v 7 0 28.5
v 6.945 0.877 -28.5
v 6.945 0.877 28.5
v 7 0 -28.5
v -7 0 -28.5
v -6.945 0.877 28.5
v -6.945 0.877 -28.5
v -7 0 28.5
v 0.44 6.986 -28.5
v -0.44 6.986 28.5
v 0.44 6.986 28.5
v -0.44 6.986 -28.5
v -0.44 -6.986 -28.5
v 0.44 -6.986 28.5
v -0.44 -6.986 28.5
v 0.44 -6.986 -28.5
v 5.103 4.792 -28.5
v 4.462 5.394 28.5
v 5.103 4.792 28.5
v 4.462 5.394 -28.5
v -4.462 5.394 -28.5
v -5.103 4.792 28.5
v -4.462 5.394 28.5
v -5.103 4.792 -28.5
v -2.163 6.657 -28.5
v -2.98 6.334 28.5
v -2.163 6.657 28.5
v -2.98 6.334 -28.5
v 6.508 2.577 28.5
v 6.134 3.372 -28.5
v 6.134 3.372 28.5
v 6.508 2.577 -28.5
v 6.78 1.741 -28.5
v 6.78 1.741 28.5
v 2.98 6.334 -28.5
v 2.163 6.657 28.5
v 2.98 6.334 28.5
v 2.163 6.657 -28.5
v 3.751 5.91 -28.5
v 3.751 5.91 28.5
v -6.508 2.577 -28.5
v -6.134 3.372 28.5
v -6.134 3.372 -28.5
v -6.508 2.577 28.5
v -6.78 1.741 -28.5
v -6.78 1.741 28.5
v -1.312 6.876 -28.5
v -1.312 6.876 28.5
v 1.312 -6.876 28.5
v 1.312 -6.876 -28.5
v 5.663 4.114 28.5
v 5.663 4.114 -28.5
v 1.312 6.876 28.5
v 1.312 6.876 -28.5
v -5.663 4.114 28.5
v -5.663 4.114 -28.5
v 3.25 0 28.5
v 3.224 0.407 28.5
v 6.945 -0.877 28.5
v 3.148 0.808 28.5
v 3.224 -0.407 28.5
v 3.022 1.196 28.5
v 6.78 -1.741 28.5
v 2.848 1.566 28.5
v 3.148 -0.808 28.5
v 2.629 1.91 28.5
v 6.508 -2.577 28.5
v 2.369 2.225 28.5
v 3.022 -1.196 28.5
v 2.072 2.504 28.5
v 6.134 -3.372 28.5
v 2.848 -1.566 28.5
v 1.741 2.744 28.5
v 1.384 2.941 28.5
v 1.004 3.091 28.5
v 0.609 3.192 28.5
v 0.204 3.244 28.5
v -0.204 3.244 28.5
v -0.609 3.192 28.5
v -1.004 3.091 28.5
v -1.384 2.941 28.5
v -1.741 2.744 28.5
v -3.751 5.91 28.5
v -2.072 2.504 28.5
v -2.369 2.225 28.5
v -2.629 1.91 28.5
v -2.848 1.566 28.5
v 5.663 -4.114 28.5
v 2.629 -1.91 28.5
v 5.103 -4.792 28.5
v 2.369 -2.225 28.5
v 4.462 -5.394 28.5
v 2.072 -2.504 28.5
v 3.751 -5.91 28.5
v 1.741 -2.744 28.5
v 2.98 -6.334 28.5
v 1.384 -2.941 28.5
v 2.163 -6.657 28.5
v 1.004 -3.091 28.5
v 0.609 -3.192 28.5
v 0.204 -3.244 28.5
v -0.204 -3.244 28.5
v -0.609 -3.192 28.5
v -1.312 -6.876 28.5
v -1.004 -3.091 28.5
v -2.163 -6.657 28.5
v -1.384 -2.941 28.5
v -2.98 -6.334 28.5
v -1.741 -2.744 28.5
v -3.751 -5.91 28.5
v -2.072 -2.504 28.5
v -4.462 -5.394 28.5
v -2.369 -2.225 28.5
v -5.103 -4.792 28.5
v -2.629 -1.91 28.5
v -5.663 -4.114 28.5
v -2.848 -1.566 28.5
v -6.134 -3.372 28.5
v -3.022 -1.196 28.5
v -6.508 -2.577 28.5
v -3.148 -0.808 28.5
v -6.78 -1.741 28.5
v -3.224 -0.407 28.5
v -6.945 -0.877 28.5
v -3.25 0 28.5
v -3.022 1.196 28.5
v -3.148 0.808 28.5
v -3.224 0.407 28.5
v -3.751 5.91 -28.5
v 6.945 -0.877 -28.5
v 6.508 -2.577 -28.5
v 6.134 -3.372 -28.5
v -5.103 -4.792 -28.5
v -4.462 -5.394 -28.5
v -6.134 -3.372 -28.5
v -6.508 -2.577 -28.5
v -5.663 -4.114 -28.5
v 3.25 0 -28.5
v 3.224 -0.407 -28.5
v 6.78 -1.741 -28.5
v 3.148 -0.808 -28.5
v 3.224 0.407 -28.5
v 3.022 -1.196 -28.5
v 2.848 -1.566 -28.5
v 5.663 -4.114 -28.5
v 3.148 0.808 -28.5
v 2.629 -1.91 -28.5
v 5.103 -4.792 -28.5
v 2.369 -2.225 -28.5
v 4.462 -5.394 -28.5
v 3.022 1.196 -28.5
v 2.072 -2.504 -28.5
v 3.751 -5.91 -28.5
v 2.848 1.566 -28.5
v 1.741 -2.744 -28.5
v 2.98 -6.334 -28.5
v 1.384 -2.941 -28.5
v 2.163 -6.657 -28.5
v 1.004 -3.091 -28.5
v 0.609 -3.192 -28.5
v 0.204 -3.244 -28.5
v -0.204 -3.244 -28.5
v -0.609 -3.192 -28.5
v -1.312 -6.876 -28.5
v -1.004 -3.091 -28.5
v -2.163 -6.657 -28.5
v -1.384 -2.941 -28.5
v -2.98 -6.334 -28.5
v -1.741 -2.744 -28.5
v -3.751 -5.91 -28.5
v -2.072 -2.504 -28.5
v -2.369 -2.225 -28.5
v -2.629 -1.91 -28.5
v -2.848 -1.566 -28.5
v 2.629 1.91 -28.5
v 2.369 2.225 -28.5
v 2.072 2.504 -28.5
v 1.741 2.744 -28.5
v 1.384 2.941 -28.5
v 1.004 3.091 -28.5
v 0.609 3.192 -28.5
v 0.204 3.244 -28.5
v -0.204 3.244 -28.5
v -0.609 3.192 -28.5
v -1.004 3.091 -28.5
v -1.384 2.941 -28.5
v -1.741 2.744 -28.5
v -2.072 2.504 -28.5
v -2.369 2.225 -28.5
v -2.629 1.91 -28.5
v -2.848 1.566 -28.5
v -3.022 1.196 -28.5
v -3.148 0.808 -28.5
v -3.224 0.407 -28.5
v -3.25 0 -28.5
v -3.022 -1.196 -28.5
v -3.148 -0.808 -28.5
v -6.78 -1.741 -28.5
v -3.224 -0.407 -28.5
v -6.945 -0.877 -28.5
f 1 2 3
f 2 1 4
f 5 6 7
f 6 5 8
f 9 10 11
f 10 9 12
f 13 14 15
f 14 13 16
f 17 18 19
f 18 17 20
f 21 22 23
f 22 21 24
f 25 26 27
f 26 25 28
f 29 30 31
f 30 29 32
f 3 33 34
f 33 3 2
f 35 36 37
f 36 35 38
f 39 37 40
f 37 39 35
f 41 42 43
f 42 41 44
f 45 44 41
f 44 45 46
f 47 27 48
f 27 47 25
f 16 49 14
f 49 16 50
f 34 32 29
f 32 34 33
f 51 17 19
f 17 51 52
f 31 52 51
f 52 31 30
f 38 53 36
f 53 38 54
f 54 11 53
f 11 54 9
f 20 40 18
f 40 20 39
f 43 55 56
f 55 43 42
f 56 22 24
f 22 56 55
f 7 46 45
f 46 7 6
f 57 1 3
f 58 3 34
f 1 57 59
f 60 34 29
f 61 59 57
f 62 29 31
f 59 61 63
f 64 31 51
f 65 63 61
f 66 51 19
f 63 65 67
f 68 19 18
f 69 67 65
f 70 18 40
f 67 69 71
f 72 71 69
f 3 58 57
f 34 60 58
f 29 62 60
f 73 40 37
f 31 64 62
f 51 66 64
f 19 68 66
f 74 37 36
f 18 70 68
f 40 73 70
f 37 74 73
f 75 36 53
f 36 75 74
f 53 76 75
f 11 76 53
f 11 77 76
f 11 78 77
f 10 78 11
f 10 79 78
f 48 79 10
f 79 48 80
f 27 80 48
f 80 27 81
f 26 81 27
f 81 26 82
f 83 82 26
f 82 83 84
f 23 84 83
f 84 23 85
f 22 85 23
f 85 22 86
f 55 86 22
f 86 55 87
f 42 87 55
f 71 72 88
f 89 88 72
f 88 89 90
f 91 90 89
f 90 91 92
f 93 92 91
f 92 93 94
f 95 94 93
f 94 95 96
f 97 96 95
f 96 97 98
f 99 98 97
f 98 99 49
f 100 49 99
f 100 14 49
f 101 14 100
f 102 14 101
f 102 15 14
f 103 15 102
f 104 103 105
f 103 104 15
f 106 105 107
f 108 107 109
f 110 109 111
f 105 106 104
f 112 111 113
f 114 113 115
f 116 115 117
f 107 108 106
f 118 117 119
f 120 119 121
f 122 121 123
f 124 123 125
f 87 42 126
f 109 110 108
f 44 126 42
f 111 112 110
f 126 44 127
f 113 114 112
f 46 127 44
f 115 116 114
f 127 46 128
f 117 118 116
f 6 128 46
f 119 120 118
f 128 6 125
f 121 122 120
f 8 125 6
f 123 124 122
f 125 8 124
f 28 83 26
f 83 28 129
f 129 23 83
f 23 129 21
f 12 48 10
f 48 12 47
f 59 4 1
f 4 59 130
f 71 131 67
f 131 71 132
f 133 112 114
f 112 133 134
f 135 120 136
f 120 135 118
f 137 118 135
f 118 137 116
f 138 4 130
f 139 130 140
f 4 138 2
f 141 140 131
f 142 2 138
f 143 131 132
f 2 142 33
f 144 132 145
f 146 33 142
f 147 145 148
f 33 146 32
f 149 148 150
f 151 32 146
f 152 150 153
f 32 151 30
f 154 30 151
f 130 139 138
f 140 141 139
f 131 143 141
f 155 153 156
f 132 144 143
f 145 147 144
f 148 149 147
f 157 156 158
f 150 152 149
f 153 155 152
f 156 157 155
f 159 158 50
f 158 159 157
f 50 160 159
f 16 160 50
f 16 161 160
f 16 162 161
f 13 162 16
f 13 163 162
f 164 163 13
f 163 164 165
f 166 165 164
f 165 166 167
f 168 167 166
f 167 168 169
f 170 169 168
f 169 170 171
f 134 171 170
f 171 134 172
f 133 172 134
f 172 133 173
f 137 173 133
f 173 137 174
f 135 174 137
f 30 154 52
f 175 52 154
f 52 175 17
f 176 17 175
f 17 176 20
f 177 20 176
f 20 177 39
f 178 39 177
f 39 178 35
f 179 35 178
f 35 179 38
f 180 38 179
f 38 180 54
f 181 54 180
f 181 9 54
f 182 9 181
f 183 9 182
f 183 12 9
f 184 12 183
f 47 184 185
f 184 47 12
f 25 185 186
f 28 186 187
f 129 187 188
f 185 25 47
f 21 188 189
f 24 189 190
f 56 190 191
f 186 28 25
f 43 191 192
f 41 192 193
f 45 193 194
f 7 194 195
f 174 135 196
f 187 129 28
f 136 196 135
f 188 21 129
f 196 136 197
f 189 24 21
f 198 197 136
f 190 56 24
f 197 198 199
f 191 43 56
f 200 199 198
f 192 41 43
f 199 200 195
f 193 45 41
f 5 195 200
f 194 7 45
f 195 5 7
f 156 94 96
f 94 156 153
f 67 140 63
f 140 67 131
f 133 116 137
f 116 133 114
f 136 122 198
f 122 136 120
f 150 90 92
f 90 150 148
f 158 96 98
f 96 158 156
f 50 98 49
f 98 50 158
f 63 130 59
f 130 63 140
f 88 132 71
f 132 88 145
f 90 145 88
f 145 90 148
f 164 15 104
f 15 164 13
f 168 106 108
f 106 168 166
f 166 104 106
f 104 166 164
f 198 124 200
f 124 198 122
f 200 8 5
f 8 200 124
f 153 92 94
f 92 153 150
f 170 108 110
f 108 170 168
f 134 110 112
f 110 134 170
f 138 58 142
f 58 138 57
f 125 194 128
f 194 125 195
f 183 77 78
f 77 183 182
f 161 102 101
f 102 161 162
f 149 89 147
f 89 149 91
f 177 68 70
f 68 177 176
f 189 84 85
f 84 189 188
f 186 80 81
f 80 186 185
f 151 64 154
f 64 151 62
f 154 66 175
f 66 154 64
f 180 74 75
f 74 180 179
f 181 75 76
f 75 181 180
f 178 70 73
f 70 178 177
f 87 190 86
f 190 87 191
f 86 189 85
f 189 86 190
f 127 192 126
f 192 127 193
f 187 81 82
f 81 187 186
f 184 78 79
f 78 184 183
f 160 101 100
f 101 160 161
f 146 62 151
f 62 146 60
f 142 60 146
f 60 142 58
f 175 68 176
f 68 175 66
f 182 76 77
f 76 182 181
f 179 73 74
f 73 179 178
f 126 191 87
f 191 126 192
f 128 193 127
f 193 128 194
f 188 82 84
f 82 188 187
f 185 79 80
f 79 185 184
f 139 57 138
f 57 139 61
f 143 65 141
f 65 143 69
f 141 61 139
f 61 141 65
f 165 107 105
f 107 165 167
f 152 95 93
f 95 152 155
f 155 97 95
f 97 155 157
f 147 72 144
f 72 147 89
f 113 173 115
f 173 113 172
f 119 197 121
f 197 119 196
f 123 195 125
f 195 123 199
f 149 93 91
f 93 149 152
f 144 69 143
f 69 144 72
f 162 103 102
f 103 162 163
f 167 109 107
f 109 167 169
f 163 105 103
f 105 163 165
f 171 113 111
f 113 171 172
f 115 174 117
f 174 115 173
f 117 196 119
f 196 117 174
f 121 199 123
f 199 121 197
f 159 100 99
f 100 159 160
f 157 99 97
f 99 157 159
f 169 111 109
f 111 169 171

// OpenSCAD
$fn = 50;


difference() {
	union() {
		translate(v = [0, 0, -28.5000000000]) {
			cylinder(h = 57, r = 7.0000000000);
		}
	}
	union() {
		translate(v = [0, 0, -100.0000000000]) {
			cylinder(h = 200, r = 3.2500000000);
		}
	}
}
